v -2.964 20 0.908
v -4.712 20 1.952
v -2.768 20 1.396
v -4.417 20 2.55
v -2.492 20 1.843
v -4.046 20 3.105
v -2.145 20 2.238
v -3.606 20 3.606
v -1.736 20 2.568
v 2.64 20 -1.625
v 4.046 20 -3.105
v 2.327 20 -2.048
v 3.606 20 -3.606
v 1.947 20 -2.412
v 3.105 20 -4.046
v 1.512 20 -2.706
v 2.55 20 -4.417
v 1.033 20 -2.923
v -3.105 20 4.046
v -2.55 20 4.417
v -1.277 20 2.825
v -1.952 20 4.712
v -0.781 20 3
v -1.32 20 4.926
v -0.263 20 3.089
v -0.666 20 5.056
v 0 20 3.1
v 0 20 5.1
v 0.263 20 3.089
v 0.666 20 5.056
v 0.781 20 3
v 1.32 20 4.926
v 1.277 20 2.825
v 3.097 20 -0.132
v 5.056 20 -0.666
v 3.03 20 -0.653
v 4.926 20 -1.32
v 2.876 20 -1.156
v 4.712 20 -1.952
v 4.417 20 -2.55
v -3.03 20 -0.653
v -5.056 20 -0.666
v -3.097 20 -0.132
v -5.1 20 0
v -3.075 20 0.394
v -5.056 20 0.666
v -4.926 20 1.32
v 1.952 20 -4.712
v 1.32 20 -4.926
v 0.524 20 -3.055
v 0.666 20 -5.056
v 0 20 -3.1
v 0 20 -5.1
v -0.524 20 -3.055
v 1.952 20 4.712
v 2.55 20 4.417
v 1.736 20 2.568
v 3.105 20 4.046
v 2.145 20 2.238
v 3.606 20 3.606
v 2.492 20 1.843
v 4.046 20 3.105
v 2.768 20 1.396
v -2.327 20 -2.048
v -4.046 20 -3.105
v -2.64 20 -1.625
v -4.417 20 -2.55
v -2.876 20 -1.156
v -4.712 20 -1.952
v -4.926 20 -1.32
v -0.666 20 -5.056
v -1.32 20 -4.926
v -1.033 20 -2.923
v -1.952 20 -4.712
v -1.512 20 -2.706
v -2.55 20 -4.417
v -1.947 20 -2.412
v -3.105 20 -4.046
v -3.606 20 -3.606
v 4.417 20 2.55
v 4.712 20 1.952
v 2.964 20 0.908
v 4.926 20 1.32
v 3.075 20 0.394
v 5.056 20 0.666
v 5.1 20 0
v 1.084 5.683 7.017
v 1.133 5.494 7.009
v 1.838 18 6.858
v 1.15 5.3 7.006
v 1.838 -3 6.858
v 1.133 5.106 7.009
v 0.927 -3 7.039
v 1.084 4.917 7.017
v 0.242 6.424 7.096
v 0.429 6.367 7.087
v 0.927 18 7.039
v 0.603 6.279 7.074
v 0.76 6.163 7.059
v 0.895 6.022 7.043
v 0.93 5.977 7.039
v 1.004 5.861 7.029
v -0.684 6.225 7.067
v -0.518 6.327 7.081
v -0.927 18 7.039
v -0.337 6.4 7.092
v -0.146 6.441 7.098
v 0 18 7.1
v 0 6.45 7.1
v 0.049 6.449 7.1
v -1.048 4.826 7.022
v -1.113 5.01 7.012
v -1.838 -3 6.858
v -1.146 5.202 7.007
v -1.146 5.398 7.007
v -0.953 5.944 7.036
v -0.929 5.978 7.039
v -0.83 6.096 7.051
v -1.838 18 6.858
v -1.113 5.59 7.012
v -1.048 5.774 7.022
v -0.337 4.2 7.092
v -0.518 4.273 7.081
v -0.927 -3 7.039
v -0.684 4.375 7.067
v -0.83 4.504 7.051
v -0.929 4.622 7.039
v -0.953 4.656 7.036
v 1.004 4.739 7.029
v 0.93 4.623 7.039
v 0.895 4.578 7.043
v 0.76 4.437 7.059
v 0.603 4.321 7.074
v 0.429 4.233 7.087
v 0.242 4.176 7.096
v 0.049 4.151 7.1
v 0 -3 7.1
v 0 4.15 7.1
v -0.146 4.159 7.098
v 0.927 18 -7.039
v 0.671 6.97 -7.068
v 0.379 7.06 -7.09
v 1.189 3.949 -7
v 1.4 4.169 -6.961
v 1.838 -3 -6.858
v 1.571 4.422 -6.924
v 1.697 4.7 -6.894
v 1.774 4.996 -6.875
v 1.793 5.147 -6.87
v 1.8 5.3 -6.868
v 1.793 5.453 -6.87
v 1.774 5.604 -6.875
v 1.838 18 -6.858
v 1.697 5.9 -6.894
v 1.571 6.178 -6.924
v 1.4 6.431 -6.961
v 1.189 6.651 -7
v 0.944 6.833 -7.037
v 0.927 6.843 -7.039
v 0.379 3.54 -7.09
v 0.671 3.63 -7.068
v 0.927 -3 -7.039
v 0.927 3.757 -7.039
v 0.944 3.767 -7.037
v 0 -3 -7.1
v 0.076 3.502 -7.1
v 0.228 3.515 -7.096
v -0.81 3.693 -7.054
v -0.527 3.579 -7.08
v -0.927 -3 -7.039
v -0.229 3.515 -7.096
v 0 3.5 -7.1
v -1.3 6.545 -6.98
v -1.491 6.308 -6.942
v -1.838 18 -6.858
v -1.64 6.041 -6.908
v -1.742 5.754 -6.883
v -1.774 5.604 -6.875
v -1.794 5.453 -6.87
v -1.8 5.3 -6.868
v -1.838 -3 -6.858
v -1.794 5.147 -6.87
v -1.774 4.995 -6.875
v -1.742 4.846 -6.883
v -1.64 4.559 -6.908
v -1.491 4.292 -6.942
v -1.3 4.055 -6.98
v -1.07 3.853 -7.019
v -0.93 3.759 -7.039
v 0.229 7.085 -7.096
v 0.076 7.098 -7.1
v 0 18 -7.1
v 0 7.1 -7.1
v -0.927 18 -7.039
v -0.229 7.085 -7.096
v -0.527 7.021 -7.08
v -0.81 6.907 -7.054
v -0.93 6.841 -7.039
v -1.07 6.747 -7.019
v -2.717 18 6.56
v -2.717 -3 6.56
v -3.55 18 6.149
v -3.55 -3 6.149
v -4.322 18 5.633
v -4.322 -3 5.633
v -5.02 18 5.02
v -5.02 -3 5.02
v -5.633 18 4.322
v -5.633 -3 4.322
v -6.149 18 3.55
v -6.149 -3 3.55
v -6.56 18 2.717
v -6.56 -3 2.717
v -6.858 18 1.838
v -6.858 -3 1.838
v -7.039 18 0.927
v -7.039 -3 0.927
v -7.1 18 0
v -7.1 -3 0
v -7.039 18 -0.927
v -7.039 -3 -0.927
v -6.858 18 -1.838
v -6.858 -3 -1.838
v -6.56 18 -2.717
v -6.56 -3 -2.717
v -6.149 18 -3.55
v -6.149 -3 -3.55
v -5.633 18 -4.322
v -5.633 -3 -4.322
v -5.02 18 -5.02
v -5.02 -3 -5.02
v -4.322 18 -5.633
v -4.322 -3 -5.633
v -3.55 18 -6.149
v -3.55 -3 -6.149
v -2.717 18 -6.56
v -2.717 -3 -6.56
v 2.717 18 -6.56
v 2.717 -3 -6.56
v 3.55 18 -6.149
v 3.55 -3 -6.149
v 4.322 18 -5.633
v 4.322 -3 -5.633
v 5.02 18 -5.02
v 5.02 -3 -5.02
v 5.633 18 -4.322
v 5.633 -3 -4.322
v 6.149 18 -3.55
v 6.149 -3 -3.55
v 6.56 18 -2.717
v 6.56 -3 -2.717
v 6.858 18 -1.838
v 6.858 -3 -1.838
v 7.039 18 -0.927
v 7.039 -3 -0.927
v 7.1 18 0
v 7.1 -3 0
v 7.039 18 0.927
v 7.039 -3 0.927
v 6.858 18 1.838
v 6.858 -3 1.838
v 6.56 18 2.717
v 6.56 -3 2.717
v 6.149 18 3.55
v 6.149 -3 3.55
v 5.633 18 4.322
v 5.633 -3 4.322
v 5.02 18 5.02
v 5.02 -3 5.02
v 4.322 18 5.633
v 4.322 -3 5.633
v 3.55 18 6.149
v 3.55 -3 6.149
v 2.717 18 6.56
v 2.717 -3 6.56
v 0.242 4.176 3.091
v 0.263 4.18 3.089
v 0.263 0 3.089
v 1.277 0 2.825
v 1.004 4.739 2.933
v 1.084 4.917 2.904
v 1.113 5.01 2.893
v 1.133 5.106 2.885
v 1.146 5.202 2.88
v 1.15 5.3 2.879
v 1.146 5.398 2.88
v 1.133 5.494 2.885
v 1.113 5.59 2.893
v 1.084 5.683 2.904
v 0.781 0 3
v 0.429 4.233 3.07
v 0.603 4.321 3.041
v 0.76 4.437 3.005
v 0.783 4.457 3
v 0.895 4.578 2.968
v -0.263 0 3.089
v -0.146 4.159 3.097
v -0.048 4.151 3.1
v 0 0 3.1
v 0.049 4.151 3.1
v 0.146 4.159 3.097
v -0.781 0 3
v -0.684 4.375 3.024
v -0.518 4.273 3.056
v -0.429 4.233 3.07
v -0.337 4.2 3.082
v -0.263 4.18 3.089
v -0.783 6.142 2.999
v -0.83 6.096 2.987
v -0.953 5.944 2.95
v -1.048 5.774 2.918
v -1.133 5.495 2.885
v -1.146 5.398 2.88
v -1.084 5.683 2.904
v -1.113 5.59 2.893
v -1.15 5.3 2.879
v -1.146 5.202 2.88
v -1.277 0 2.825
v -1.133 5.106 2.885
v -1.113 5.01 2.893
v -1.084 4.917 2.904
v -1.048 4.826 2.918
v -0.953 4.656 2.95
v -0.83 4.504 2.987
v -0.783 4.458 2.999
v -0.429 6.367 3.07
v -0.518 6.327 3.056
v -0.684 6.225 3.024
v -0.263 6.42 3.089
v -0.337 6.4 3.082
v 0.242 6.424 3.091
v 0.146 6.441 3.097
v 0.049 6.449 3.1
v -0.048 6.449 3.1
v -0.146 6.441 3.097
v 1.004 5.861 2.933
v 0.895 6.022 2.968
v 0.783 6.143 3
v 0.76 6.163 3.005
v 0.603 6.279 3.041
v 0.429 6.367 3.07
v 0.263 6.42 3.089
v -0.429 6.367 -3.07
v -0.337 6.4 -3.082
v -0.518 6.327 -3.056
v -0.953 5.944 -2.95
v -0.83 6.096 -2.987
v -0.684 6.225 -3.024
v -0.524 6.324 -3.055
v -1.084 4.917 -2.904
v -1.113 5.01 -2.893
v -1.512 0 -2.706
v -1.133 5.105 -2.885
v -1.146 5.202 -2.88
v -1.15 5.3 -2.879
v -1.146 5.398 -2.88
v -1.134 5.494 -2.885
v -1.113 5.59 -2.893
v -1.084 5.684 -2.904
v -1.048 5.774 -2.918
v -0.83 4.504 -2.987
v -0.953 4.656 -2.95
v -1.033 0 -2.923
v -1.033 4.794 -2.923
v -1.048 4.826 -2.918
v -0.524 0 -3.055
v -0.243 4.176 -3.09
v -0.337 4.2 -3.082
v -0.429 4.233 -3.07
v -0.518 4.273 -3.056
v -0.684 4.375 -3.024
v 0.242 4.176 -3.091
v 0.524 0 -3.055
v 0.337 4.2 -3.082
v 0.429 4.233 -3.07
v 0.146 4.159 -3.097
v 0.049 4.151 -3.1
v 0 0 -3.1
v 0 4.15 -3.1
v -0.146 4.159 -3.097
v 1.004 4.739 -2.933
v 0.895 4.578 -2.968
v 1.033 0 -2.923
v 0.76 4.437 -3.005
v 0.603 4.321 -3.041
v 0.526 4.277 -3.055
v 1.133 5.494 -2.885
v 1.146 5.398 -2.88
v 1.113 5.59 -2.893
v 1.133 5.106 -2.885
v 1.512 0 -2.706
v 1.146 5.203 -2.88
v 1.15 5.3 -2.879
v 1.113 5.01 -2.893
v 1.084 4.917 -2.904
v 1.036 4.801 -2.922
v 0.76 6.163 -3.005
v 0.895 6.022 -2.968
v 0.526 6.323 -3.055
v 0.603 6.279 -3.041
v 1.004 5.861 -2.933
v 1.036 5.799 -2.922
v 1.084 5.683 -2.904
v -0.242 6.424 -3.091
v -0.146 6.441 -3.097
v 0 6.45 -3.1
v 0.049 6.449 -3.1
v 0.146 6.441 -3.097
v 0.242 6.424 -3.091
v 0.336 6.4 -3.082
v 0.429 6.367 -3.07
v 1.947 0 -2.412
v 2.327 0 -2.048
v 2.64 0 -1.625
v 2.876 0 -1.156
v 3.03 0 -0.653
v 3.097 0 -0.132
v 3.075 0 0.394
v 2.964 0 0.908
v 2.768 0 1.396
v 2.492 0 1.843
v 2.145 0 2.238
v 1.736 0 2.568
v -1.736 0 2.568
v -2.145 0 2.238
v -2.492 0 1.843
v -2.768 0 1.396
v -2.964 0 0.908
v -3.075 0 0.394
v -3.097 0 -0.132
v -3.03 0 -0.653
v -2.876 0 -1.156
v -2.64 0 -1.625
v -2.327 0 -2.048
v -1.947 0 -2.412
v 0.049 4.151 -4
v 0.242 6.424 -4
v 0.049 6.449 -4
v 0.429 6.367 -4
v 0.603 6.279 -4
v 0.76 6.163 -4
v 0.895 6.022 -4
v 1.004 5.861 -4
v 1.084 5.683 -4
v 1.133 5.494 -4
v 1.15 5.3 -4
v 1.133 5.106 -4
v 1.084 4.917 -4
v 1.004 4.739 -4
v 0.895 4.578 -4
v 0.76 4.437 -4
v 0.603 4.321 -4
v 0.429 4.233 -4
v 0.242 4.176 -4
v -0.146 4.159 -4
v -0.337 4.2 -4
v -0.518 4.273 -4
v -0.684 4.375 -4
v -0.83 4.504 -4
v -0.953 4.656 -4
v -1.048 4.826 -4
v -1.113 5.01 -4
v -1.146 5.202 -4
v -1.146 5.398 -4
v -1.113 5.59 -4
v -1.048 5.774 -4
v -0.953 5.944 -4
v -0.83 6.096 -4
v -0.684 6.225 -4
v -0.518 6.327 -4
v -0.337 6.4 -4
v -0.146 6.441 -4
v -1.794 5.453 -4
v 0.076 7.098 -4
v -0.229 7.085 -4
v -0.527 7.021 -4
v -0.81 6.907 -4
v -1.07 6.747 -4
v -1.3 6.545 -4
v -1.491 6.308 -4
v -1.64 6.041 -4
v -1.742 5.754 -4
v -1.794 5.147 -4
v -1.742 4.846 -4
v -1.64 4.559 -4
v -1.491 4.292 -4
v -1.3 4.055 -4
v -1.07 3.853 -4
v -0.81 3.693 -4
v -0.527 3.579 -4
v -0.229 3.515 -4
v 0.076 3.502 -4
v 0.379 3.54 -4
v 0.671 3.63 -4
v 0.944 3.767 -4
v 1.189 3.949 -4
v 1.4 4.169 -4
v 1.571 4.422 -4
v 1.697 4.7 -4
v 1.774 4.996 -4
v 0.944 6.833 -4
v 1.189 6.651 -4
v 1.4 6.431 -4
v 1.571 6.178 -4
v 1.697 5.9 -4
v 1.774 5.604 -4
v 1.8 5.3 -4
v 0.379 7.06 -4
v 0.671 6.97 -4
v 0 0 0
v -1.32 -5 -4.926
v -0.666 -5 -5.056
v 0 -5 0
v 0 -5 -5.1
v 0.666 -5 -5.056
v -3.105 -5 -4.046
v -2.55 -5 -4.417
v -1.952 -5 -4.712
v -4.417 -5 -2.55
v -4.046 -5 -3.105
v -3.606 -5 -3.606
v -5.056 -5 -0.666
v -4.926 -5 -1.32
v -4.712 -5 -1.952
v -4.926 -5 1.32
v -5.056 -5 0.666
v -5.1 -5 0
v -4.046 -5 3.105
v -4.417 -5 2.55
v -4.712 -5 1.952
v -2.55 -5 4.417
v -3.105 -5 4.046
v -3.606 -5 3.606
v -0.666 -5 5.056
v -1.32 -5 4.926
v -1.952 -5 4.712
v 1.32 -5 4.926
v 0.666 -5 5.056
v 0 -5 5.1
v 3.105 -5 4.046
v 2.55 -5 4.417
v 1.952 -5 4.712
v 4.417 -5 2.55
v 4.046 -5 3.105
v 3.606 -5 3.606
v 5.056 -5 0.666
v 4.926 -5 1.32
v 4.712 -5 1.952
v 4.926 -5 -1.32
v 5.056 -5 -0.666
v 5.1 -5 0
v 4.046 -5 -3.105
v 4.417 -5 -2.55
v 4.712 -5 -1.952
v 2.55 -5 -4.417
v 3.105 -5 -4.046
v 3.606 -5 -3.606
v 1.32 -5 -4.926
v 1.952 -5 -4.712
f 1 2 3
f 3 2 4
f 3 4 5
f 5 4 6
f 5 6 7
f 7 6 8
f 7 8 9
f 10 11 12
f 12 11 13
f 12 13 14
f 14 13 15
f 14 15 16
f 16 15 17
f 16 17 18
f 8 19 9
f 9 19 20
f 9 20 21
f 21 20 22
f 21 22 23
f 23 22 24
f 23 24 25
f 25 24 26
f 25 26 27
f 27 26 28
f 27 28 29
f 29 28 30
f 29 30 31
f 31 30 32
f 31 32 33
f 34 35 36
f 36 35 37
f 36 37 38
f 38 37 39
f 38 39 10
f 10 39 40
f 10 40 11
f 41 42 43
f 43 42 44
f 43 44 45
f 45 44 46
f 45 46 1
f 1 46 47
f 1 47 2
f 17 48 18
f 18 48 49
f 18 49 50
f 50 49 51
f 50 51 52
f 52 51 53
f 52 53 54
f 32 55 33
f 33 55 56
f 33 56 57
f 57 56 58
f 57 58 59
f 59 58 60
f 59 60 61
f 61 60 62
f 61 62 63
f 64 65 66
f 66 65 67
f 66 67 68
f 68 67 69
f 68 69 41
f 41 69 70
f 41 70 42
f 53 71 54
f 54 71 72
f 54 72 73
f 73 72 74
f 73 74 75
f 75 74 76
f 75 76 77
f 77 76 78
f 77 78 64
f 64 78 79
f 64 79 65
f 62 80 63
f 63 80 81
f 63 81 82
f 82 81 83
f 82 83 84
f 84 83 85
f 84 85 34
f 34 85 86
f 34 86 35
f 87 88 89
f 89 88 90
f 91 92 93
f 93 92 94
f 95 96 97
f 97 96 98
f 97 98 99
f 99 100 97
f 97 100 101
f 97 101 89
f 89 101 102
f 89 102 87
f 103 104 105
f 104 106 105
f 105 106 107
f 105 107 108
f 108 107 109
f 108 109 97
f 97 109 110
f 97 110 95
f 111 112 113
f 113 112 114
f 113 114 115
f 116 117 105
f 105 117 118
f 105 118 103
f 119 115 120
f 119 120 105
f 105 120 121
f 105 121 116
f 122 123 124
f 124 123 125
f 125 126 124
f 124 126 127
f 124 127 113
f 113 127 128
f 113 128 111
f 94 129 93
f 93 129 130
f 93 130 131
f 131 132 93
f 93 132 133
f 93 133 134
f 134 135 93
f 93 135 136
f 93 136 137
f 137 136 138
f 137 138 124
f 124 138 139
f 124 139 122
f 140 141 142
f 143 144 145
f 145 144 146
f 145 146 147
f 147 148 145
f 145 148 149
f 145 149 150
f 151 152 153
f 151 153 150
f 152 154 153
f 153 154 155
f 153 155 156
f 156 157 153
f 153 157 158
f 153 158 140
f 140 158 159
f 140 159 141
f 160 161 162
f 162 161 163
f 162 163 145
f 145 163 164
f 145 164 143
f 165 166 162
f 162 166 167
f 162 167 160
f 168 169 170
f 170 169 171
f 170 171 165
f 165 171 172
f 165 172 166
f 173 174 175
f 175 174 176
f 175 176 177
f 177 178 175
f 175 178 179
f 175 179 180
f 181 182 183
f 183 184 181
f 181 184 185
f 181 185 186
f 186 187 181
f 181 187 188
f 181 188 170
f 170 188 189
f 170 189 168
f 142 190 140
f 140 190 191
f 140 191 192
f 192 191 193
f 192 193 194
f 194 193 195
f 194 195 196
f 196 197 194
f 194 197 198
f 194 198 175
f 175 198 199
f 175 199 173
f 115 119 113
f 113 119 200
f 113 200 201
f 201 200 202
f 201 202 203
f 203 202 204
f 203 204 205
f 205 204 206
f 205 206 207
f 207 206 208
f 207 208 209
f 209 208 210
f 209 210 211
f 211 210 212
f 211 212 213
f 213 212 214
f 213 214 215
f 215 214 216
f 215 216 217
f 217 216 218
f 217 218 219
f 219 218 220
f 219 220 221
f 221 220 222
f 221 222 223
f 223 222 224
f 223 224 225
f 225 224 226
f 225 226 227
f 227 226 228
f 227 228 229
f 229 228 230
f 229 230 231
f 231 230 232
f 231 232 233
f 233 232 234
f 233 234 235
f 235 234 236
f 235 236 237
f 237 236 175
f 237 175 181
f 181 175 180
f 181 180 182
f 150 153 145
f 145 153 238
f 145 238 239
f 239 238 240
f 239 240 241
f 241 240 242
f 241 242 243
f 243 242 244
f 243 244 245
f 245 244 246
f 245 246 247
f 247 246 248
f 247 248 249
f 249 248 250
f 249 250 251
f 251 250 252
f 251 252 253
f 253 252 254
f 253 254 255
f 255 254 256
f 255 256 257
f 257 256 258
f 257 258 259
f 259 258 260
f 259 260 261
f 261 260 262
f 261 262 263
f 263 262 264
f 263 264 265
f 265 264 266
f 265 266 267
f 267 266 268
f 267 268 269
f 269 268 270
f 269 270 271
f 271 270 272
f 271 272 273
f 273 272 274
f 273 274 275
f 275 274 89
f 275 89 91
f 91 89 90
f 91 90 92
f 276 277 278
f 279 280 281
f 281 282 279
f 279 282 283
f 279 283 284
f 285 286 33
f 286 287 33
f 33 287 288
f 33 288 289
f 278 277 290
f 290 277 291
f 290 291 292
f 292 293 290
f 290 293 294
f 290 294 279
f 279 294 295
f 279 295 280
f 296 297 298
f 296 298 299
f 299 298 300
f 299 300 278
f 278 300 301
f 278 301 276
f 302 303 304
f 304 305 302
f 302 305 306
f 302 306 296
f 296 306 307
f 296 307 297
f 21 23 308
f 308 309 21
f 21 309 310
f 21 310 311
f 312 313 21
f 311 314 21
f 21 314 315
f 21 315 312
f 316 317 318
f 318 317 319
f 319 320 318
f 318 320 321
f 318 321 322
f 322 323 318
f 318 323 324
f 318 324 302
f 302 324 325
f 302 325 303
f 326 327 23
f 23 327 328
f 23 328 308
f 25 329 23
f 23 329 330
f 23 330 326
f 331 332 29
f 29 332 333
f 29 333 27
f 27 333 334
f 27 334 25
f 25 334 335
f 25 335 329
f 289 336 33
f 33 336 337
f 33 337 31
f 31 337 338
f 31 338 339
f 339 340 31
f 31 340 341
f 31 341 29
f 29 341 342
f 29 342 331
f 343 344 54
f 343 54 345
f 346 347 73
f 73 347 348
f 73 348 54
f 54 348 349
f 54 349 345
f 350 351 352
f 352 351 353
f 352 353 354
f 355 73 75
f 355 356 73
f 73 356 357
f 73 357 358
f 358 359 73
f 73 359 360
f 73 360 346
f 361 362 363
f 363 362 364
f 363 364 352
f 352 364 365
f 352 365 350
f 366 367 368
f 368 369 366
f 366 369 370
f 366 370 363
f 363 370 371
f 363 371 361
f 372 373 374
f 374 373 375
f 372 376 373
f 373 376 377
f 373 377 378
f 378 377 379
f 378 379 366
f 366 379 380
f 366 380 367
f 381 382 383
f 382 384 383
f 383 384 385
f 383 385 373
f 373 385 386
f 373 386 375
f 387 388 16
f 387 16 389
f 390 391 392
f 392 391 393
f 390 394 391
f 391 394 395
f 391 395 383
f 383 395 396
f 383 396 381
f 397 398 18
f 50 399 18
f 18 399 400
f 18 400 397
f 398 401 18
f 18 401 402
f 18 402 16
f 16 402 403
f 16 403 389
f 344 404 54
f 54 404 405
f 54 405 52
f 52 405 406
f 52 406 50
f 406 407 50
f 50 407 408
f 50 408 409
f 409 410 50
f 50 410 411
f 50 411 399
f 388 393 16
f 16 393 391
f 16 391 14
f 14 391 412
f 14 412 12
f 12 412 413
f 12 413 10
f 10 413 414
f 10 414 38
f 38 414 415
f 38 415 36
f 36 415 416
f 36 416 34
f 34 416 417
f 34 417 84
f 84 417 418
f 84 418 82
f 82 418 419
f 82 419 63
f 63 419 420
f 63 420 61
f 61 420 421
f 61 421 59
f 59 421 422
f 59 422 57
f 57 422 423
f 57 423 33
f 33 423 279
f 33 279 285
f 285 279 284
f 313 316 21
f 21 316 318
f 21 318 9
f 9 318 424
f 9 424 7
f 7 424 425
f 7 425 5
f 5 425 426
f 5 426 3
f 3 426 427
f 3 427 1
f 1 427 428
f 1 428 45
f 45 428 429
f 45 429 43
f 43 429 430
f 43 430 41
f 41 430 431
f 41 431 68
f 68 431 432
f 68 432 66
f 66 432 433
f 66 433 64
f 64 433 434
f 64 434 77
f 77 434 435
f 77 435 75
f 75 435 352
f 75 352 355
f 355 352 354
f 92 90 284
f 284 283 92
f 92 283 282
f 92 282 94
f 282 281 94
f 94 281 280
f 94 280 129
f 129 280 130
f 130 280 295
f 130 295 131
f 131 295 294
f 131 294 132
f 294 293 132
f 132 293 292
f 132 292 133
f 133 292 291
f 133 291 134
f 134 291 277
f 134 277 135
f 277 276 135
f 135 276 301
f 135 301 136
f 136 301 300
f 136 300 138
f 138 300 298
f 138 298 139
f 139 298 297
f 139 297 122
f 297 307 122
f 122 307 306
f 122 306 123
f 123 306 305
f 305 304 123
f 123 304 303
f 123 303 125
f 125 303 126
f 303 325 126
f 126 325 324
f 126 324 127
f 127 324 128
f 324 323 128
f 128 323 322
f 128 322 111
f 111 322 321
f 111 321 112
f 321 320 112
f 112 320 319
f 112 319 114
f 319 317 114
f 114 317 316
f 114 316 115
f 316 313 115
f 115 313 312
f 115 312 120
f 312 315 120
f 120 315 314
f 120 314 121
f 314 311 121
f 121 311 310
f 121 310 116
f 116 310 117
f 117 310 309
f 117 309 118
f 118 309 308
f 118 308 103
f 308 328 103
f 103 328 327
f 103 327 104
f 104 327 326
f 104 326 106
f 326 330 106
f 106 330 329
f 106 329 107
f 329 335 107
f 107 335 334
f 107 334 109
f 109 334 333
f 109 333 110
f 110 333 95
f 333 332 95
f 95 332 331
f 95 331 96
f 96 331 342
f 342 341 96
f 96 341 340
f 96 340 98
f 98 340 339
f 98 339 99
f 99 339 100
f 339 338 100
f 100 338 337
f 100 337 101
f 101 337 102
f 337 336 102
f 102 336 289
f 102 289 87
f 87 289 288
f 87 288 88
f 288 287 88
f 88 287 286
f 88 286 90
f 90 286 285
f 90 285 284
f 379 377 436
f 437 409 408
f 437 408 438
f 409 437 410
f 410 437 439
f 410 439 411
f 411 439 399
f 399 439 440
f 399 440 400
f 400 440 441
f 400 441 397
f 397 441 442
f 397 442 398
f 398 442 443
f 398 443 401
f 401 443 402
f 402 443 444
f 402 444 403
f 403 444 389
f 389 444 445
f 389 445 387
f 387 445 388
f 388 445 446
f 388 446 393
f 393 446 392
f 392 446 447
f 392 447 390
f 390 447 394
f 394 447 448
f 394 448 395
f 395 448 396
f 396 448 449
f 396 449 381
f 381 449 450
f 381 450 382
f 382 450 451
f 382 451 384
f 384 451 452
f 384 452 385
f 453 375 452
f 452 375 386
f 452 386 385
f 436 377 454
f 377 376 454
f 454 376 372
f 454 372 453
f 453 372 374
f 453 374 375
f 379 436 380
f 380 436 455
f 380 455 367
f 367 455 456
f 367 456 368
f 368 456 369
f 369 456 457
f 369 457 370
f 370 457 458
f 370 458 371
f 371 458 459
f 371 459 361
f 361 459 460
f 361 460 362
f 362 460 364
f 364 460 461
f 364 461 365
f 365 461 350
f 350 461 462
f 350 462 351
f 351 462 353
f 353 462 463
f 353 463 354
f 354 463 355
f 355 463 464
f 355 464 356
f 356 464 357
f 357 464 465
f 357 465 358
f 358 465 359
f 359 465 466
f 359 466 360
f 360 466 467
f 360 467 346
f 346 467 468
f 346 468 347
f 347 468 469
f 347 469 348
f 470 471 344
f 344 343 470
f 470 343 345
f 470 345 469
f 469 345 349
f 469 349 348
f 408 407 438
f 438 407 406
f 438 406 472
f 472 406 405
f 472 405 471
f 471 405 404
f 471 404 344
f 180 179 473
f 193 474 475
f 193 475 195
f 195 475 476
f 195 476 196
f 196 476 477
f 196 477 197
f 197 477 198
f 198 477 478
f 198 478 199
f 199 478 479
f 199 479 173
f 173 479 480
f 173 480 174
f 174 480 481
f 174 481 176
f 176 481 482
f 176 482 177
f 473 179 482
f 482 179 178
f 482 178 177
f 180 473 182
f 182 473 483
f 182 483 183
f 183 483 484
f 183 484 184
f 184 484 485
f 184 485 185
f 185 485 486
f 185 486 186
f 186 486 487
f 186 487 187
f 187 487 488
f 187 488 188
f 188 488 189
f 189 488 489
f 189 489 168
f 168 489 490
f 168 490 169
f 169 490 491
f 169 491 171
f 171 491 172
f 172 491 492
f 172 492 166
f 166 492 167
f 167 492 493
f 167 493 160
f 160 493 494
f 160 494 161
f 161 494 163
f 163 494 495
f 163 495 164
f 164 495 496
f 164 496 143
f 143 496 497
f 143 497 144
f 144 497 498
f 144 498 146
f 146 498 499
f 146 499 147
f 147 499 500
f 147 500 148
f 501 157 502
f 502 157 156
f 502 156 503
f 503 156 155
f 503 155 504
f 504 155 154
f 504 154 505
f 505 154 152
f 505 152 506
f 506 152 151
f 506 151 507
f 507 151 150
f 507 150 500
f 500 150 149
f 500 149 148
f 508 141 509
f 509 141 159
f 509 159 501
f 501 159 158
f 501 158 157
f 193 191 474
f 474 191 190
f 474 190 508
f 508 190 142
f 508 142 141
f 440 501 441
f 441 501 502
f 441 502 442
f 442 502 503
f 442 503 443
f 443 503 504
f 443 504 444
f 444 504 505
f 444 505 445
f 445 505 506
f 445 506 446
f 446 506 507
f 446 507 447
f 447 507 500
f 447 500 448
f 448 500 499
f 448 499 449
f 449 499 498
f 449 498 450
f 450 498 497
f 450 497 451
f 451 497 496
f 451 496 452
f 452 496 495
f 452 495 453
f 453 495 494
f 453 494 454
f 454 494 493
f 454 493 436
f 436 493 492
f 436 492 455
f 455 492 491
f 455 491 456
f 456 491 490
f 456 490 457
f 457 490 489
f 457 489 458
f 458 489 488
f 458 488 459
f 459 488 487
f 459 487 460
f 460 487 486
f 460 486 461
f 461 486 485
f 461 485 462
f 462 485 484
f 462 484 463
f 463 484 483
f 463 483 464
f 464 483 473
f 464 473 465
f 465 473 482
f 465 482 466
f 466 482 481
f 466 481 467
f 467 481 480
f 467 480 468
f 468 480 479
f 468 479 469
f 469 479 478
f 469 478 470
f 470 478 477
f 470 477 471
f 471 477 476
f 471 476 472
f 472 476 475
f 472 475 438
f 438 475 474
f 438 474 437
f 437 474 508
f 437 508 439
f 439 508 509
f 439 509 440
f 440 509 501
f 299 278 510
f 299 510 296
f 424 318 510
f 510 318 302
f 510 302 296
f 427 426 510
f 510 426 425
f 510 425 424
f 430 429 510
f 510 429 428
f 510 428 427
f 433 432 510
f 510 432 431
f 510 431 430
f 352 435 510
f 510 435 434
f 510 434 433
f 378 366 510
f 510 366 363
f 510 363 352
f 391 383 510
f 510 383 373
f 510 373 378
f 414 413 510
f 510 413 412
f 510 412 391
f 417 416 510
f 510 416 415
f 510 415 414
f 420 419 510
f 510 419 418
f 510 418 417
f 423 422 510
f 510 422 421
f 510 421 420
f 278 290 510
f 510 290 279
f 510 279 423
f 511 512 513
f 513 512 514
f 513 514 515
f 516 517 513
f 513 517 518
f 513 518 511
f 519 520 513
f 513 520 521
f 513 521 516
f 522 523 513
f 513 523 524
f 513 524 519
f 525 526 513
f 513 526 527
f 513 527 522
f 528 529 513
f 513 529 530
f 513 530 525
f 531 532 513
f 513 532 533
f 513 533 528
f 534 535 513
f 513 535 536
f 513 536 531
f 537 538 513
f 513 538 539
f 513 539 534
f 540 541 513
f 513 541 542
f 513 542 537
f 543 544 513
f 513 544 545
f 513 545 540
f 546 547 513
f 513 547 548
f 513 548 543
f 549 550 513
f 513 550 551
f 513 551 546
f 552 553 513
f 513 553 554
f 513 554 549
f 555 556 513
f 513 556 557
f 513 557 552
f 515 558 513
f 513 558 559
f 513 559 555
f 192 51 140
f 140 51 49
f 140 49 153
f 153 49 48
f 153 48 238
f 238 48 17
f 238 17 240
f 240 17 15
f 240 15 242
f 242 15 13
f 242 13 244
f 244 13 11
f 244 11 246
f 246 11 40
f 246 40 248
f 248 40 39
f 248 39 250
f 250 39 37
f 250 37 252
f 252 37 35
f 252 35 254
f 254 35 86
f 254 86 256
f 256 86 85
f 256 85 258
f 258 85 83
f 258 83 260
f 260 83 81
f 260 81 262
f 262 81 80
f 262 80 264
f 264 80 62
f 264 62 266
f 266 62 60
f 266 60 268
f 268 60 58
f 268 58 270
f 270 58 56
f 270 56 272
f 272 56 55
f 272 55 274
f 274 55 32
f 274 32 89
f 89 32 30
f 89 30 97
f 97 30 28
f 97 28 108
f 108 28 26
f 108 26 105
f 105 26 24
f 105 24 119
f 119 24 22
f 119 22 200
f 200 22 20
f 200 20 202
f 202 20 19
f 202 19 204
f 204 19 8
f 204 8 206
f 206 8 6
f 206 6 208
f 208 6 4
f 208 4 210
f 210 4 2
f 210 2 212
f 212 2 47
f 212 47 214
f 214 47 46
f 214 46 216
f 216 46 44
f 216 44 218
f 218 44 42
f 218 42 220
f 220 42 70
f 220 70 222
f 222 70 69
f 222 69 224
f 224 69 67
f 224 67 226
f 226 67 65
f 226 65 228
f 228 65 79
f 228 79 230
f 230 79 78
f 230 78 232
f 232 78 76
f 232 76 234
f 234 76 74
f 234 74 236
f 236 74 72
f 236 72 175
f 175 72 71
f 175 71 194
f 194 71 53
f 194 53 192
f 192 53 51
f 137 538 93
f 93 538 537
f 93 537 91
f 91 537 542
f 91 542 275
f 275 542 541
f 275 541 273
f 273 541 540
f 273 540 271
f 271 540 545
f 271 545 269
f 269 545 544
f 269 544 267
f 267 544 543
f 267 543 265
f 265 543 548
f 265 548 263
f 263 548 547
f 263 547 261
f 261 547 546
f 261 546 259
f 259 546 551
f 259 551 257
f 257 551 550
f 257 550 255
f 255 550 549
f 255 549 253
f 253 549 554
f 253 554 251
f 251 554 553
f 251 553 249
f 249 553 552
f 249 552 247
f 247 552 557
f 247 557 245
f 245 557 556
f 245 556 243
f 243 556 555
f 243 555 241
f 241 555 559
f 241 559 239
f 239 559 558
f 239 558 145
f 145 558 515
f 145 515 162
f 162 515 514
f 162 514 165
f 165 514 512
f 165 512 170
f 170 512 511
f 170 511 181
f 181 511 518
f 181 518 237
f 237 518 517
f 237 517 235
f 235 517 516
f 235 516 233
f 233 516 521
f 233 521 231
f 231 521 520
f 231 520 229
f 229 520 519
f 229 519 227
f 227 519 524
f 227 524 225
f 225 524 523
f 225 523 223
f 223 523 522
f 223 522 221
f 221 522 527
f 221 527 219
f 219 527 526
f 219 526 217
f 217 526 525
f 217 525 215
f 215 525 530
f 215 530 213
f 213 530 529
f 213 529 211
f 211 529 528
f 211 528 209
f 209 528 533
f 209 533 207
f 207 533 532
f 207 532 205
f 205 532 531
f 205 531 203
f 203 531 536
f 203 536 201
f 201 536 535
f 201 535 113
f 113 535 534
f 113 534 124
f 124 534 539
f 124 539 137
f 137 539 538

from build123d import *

# Parameters (mm, degrees)
SKETCH1_R               = 7.1
SKETCH1_R_2             = 3.1
BOSS_EXTRUDE1_DEPTH     = 20
SKETCH3_R               = 1.15
CUT_EXTRUDE1_DEPTH      = 8.1
CUT_EXTRUDE1_DEPTH_BACK = 8.1
CUT_EXTRUDE2_START      = -4
SKETCH5_R               = 1.8
CUT_EXTRUDE2_DEPTH      = 5
SKETCH2_R               = 7.1
BOSS_EXTRUDE2_DEPTH     = 5
CHAMFER1_SIZE           = 2


with BuildPart() as part:
    # Sketch1 → Boss-Extrude1 (new body)
    with BuildSketch(Plane(origin=(0, 0, 0), x_dir=(1, 0, 0), z_dir=(0, 1, 0))):
        Circle(SKETCH1_R)
        Circle(SKETCH1_R_2, mode=Mode.SUBTRACT)
    extrude(amount=BOSS_EXTRUDE1_DEPTH)

    # Sketch3 → Cut-Extrude1 (cut, two sides)
    with BuildSketch(Plane.XY) as cut_extrude1_sk:
        with Locations((0, 5.3)):
            Circle(SKETCH3_R)
    extrude(amount=CUT_EXTRUDE1_DEPTH, mode=Mode.SUBTRACT)
    extrude(cut_extrude1_sk.sketch, amount=-CUT_EXTRUDE1_DEPTH_BACK, mode=Mode.SUBTRACT)

    # Sketch5 → Cut-Extrude2 (cut)
    with BuildSketch(Plane.XY.offset(CUT_EXTRUDE2_START)):
        with Locations((0, 5.3)):
            Circle(SKETCH5_R)
    extrude(amount=-CUT_EXTRUDE2_DEPTH, mode=Mode.SUBTRACT)

    # Sketch2 → Boss-Extrude2 (add)
    with BuildSketch(Plane.XZ):
        Circle(SKETCH2_R)
    extrude(amount=BOSS_EXTRUDE2_DEPTH)

    # Chamfer1
    chamfer1_edges = [part.edges().sort_by_distance(p)[0] for p in [
        (-7.1, -5, 0),
        (-7.1, 20, 0),
    ]]
    chamfer(chamfer1_edges, length=CHAMFER1_SIZE)


solid = part.part
